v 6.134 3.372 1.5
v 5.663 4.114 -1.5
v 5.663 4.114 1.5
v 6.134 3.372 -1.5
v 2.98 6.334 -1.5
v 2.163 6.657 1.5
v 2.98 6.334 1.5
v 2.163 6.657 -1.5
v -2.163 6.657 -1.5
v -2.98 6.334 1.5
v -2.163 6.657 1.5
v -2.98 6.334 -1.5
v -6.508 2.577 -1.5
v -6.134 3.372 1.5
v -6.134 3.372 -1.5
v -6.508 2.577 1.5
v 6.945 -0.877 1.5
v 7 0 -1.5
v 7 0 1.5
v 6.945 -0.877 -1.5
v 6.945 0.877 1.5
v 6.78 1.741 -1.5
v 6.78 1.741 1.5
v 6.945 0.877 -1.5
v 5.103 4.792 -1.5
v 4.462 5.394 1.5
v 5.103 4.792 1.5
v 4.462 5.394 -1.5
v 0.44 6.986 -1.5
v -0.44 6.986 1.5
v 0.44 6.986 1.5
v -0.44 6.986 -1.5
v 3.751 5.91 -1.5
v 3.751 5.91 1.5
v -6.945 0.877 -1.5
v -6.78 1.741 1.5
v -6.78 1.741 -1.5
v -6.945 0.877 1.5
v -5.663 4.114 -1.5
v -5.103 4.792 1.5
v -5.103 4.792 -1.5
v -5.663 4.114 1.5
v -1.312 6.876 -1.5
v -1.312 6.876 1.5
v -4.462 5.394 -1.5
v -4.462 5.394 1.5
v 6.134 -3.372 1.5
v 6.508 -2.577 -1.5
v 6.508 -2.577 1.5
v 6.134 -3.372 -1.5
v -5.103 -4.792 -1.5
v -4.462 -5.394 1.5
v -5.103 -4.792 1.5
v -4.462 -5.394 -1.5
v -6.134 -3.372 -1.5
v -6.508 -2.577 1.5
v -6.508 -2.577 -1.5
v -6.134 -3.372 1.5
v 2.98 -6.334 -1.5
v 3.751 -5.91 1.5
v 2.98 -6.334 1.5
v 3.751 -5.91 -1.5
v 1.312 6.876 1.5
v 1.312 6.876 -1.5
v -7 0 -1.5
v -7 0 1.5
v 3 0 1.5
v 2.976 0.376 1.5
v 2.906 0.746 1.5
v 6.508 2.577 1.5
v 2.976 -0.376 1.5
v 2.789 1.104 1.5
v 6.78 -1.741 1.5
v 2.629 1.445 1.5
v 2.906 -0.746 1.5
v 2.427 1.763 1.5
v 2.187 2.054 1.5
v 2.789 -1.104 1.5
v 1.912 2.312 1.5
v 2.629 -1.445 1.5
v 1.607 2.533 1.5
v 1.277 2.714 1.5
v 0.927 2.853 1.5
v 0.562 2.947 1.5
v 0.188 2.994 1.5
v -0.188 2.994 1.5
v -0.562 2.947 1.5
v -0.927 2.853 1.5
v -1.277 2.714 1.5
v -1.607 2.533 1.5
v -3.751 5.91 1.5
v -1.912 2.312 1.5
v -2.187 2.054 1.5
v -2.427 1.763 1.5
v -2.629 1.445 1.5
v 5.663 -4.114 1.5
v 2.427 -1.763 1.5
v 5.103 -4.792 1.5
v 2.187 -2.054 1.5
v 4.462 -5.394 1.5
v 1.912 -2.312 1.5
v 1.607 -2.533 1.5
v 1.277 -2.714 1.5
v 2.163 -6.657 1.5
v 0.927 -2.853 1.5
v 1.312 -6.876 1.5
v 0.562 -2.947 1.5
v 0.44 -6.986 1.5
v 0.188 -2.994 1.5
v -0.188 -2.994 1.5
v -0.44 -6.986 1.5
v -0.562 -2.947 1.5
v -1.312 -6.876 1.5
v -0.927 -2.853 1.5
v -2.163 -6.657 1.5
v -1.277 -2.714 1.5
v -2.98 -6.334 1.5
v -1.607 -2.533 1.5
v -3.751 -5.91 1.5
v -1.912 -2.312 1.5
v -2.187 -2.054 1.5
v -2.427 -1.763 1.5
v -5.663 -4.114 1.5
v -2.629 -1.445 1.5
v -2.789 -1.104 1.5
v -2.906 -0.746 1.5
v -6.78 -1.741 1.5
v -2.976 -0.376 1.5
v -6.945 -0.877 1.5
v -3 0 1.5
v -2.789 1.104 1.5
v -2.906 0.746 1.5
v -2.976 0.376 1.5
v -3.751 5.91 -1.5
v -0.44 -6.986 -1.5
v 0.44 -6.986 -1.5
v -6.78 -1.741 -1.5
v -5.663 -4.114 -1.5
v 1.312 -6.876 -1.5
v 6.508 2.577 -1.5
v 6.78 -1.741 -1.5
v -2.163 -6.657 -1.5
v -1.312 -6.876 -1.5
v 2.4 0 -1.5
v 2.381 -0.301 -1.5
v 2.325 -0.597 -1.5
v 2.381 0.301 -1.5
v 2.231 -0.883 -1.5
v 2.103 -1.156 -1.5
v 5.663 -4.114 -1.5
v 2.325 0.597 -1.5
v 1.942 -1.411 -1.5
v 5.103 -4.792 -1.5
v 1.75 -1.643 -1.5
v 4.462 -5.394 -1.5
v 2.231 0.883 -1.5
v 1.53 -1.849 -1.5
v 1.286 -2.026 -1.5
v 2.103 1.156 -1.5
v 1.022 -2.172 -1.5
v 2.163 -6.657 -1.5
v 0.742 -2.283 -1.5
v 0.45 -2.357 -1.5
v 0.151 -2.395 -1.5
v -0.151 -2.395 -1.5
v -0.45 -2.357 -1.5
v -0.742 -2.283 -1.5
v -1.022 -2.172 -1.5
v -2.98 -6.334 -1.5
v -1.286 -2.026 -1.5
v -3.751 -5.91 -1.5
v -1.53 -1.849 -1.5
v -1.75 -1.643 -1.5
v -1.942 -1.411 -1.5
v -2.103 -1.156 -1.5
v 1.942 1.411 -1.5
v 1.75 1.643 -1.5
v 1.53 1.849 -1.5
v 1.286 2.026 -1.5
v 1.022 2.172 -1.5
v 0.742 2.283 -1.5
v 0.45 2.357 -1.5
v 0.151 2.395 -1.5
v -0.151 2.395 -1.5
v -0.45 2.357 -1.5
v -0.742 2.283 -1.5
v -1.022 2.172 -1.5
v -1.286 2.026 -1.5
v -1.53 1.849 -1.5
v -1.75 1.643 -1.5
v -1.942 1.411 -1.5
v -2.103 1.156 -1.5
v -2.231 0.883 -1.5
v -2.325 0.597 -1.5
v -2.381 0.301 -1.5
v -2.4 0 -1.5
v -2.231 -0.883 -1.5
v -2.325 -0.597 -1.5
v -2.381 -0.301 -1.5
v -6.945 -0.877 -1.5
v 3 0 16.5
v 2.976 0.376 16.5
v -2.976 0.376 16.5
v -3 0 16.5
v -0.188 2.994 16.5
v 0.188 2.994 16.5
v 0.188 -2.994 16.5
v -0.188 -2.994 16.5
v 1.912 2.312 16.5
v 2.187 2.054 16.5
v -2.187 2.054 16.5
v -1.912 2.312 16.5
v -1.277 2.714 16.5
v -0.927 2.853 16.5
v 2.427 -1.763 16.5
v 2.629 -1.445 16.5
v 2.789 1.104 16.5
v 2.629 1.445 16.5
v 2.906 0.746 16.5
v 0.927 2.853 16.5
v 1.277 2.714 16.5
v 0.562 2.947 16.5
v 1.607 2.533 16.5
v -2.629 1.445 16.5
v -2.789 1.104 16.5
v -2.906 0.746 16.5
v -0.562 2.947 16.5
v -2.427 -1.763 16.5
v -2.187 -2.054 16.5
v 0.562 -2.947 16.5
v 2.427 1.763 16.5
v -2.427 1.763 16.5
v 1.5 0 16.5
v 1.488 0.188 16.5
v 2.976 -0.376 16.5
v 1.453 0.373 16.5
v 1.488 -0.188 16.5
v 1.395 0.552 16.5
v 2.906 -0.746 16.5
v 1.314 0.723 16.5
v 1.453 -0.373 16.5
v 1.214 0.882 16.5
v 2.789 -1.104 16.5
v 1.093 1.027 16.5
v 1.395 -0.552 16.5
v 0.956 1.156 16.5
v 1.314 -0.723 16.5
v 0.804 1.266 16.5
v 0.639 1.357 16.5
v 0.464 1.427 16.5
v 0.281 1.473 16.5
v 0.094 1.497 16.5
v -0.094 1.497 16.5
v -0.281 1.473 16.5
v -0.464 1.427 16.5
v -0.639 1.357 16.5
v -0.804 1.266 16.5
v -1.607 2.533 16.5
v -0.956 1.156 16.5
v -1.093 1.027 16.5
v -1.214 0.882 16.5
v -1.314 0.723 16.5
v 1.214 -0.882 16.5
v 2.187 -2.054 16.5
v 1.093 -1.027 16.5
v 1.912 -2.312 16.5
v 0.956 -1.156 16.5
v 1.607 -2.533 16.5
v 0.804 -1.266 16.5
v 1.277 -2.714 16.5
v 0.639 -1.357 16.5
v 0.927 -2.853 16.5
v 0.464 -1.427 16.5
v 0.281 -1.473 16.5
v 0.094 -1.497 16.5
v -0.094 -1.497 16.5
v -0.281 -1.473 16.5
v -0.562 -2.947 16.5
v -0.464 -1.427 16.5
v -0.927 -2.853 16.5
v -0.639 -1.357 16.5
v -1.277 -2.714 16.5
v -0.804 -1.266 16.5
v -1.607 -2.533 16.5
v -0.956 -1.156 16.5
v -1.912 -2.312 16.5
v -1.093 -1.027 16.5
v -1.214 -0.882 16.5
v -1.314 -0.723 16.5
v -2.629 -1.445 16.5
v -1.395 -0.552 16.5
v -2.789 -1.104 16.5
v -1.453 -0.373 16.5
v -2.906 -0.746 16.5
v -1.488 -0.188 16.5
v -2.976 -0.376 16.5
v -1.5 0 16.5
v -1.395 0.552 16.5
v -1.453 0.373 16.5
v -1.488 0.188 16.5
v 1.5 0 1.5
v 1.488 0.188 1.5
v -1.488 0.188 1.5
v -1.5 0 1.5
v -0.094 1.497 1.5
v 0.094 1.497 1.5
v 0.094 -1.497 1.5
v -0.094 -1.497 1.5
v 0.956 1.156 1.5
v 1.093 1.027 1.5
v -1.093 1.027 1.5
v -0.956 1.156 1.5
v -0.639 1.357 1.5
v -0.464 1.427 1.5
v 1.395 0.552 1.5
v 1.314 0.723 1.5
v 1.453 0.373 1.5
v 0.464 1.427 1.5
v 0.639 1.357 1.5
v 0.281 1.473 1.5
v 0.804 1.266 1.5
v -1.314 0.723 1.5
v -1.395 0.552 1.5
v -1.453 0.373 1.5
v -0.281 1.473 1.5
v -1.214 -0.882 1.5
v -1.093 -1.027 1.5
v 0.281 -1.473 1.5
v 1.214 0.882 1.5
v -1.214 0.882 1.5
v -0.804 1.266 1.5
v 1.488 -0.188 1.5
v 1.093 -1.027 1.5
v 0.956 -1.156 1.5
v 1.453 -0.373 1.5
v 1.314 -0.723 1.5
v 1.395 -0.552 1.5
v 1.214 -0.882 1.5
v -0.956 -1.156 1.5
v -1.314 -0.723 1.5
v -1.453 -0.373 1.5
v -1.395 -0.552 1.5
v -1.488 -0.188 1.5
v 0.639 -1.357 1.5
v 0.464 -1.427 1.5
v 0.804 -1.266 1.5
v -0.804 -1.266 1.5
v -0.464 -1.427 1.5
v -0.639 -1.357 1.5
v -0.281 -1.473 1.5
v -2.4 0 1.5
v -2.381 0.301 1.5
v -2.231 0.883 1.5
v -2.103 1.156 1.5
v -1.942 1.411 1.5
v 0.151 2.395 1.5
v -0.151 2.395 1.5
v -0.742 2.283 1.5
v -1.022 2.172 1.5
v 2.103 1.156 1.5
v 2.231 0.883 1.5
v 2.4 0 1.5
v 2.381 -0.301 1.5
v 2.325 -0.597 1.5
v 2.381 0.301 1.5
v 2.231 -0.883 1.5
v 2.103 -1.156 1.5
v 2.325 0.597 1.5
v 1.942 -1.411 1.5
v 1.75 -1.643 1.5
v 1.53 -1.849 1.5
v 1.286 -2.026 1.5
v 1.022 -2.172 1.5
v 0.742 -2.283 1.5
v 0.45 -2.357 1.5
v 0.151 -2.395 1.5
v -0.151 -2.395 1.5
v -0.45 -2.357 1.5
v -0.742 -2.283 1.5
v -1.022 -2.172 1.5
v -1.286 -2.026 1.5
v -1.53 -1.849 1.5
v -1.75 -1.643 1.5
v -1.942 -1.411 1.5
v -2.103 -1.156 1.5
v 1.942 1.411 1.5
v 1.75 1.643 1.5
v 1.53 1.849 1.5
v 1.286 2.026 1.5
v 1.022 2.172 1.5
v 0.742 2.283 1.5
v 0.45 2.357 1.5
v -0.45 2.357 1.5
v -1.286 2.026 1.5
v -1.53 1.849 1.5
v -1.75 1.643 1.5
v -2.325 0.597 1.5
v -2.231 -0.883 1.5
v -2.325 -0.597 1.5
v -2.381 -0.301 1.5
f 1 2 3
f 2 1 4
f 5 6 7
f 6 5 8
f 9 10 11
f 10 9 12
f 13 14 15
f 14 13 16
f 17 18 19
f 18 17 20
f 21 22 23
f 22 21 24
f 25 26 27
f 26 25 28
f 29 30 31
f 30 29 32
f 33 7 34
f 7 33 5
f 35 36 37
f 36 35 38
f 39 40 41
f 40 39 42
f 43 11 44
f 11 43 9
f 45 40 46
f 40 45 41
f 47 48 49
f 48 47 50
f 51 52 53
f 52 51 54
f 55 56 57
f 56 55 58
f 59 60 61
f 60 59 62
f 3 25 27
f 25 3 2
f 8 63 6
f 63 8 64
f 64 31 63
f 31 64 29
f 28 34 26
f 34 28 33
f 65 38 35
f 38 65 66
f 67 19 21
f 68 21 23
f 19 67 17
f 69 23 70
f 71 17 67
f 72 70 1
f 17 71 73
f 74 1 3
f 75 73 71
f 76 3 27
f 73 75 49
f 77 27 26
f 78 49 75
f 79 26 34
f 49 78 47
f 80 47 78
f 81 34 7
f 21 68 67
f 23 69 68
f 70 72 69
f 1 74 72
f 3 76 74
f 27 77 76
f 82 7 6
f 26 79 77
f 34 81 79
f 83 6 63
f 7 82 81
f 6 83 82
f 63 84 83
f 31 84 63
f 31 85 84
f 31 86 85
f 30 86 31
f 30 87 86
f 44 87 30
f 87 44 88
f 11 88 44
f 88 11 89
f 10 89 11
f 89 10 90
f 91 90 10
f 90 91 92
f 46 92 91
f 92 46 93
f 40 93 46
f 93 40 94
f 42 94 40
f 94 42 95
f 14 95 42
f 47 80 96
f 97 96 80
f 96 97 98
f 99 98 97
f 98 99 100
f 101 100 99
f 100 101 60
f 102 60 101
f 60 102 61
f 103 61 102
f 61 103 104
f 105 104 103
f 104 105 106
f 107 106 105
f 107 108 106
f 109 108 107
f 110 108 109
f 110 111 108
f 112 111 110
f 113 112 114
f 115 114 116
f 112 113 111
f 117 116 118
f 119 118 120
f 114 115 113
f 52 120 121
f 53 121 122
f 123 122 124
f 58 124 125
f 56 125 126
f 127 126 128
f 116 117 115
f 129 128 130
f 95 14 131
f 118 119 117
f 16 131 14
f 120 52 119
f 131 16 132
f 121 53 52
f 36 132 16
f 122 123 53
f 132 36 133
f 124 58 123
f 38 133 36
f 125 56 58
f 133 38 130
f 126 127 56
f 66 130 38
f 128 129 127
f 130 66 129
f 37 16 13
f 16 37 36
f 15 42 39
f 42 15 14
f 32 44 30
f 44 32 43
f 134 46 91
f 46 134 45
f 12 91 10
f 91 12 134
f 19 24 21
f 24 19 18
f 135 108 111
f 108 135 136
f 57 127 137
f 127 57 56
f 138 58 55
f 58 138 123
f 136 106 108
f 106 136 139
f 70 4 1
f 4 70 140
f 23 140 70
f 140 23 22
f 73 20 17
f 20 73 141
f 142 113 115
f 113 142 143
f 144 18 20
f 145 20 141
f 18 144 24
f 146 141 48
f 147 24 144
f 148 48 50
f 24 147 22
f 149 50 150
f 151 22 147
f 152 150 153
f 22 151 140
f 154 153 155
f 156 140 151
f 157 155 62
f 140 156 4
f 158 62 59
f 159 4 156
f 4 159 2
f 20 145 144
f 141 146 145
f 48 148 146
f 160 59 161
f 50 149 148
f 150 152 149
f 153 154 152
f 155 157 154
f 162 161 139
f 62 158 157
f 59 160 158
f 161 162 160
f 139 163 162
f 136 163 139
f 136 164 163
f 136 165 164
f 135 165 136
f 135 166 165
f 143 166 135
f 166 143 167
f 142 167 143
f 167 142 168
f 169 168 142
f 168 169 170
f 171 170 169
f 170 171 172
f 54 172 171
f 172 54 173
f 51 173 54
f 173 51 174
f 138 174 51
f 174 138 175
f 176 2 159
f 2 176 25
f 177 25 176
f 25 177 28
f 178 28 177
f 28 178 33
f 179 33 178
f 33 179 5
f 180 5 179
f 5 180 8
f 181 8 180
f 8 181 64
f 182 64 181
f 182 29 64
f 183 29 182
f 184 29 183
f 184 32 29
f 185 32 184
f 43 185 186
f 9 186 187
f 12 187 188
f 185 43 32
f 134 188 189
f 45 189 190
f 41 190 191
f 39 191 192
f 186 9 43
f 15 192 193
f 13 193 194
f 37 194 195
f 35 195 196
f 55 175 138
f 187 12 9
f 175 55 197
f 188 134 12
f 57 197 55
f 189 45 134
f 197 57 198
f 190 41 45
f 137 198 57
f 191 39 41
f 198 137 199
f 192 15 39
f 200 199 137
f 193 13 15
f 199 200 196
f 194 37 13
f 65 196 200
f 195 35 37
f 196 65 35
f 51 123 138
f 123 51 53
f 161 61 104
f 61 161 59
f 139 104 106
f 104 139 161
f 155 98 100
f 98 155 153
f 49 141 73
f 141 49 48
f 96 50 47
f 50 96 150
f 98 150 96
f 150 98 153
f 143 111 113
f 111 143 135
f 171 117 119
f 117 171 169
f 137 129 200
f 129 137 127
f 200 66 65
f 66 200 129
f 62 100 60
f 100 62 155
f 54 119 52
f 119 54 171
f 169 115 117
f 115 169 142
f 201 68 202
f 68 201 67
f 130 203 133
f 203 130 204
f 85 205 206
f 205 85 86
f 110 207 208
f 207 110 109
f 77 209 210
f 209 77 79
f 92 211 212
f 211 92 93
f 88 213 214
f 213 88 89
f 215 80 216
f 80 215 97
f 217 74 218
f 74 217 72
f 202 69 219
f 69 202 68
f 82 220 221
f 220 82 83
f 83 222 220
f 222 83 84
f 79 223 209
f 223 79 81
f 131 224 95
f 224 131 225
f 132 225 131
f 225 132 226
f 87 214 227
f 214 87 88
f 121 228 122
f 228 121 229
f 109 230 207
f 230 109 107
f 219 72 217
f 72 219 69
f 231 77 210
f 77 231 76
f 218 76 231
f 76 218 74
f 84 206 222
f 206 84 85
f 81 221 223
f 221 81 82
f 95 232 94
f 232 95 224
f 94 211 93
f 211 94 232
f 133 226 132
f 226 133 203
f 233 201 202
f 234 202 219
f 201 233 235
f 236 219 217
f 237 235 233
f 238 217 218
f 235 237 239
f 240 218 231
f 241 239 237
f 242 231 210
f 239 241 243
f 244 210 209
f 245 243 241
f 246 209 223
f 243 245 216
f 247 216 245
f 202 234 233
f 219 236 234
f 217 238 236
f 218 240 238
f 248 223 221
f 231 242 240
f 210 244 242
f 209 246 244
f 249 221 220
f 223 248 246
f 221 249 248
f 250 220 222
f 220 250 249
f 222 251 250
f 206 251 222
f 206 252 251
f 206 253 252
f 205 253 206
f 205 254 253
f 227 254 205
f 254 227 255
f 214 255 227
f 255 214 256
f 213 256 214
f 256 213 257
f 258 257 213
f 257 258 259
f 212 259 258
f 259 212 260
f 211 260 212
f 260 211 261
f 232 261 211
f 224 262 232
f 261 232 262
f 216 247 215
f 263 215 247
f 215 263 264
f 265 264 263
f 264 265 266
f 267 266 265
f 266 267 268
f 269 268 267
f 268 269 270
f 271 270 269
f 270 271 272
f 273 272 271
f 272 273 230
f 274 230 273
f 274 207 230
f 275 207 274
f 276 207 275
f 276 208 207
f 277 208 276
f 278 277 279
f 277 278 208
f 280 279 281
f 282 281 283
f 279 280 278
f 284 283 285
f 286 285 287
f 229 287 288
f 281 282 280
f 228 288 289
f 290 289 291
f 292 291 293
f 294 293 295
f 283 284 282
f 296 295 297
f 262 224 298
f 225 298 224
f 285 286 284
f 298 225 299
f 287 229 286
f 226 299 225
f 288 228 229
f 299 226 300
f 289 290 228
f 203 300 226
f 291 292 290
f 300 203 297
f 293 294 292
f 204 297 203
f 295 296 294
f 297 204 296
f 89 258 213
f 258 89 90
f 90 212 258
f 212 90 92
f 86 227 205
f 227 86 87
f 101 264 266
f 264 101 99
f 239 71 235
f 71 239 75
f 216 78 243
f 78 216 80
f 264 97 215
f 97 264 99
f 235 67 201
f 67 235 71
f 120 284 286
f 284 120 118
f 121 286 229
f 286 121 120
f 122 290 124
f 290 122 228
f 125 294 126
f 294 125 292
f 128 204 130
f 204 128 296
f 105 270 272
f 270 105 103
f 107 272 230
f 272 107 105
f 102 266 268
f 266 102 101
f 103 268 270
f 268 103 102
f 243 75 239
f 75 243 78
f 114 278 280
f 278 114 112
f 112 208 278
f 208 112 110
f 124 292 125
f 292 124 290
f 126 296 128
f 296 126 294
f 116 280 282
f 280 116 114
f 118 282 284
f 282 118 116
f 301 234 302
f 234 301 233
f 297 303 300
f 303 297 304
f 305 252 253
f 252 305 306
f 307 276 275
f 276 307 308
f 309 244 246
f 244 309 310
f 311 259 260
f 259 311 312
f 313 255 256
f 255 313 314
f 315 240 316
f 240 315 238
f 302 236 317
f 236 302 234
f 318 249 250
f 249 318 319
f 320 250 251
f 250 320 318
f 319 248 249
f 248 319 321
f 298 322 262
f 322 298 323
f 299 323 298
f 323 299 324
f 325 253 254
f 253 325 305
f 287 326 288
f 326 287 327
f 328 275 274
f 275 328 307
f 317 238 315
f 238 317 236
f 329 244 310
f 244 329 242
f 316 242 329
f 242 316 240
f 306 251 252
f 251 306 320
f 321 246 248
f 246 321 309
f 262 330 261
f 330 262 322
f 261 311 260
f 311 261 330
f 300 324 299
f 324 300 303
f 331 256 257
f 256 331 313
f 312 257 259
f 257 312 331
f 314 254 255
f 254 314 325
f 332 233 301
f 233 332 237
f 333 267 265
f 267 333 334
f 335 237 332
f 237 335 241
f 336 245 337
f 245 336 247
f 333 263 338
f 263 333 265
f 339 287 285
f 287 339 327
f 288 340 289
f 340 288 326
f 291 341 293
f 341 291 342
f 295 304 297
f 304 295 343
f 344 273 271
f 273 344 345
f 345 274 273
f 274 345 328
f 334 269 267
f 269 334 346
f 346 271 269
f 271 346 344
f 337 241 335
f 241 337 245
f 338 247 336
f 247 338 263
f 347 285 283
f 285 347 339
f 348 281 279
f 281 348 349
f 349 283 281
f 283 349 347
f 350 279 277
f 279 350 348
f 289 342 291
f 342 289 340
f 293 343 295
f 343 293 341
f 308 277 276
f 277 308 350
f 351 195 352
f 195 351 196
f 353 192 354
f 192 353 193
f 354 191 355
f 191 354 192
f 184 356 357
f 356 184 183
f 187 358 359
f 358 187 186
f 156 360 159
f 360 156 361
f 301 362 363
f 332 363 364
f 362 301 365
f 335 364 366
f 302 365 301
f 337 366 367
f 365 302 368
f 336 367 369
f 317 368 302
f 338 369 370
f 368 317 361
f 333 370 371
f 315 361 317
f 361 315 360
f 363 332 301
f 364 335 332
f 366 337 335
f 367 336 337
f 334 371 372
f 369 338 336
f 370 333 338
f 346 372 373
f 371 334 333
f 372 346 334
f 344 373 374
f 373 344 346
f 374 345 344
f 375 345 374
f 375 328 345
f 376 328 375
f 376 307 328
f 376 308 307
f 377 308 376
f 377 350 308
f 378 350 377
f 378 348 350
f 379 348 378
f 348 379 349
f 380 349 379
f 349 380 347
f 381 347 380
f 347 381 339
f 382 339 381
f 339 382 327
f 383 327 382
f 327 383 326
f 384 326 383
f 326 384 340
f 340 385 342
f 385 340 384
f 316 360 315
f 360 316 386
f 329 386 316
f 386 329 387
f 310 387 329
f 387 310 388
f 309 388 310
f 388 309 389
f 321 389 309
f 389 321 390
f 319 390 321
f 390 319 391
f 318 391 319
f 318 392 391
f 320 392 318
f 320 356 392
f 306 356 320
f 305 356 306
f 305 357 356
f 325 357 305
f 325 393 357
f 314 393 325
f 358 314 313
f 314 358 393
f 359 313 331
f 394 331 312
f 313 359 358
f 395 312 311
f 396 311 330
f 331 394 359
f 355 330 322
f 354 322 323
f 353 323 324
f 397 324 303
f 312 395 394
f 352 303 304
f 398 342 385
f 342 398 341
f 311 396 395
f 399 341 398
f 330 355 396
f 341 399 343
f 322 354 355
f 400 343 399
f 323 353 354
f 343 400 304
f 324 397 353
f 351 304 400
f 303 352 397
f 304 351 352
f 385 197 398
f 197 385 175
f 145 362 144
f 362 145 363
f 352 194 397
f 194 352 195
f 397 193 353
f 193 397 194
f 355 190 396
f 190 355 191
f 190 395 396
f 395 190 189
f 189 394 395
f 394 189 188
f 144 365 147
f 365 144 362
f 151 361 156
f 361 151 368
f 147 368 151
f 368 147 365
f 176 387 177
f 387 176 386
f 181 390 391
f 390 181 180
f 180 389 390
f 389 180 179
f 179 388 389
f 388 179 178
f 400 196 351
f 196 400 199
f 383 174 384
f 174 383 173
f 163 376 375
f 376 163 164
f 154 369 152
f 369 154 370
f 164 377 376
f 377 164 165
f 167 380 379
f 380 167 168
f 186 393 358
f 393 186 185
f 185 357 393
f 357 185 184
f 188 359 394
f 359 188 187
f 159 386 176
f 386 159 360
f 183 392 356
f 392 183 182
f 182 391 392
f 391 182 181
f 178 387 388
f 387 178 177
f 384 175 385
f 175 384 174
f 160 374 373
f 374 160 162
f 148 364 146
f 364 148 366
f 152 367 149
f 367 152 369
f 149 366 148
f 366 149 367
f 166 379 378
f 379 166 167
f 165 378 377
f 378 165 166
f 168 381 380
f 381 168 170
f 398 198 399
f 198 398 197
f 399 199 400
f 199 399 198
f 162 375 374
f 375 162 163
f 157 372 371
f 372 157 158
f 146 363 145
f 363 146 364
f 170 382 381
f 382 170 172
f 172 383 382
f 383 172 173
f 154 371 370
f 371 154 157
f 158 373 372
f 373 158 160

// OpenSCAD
$fn = 50;


difference() {
	union() {
		translate(v = [0, 0, -1.5000000000]) {
			rotate(a = [0, 0, 0]) {
				cylinder(h = 3, r = 7.0000000000);
			}
		}
		translate(v = [0, 0, -1.5000000000]) {
			rotate(a = [0, 0, 0]) {
				cylinder(h = 18, r = 3.0000000000);
			}
		}
	}
	union() {
		translate(v = [0, 0, -125.0000000000]) {
			rotate(a = [0, 0, 0]) {
				cylinder(h = 250, r = 1.5000000000);
			}
		}
		#translate(v = [0, 0, 1.5000000000]) {
			rotate(a = [0, 180, 0]) {
				cylinder(h = 3, r1 = 2.4000000000, r2 = 2.4000000000);
			}
		}
		#translate(v = [0, 0, 16.5000000000]) {
			rotate(a = [0, 180, 0]) {
				cylinder(h = 18, r = 1.5000000000);
			}
		}
	}
}
